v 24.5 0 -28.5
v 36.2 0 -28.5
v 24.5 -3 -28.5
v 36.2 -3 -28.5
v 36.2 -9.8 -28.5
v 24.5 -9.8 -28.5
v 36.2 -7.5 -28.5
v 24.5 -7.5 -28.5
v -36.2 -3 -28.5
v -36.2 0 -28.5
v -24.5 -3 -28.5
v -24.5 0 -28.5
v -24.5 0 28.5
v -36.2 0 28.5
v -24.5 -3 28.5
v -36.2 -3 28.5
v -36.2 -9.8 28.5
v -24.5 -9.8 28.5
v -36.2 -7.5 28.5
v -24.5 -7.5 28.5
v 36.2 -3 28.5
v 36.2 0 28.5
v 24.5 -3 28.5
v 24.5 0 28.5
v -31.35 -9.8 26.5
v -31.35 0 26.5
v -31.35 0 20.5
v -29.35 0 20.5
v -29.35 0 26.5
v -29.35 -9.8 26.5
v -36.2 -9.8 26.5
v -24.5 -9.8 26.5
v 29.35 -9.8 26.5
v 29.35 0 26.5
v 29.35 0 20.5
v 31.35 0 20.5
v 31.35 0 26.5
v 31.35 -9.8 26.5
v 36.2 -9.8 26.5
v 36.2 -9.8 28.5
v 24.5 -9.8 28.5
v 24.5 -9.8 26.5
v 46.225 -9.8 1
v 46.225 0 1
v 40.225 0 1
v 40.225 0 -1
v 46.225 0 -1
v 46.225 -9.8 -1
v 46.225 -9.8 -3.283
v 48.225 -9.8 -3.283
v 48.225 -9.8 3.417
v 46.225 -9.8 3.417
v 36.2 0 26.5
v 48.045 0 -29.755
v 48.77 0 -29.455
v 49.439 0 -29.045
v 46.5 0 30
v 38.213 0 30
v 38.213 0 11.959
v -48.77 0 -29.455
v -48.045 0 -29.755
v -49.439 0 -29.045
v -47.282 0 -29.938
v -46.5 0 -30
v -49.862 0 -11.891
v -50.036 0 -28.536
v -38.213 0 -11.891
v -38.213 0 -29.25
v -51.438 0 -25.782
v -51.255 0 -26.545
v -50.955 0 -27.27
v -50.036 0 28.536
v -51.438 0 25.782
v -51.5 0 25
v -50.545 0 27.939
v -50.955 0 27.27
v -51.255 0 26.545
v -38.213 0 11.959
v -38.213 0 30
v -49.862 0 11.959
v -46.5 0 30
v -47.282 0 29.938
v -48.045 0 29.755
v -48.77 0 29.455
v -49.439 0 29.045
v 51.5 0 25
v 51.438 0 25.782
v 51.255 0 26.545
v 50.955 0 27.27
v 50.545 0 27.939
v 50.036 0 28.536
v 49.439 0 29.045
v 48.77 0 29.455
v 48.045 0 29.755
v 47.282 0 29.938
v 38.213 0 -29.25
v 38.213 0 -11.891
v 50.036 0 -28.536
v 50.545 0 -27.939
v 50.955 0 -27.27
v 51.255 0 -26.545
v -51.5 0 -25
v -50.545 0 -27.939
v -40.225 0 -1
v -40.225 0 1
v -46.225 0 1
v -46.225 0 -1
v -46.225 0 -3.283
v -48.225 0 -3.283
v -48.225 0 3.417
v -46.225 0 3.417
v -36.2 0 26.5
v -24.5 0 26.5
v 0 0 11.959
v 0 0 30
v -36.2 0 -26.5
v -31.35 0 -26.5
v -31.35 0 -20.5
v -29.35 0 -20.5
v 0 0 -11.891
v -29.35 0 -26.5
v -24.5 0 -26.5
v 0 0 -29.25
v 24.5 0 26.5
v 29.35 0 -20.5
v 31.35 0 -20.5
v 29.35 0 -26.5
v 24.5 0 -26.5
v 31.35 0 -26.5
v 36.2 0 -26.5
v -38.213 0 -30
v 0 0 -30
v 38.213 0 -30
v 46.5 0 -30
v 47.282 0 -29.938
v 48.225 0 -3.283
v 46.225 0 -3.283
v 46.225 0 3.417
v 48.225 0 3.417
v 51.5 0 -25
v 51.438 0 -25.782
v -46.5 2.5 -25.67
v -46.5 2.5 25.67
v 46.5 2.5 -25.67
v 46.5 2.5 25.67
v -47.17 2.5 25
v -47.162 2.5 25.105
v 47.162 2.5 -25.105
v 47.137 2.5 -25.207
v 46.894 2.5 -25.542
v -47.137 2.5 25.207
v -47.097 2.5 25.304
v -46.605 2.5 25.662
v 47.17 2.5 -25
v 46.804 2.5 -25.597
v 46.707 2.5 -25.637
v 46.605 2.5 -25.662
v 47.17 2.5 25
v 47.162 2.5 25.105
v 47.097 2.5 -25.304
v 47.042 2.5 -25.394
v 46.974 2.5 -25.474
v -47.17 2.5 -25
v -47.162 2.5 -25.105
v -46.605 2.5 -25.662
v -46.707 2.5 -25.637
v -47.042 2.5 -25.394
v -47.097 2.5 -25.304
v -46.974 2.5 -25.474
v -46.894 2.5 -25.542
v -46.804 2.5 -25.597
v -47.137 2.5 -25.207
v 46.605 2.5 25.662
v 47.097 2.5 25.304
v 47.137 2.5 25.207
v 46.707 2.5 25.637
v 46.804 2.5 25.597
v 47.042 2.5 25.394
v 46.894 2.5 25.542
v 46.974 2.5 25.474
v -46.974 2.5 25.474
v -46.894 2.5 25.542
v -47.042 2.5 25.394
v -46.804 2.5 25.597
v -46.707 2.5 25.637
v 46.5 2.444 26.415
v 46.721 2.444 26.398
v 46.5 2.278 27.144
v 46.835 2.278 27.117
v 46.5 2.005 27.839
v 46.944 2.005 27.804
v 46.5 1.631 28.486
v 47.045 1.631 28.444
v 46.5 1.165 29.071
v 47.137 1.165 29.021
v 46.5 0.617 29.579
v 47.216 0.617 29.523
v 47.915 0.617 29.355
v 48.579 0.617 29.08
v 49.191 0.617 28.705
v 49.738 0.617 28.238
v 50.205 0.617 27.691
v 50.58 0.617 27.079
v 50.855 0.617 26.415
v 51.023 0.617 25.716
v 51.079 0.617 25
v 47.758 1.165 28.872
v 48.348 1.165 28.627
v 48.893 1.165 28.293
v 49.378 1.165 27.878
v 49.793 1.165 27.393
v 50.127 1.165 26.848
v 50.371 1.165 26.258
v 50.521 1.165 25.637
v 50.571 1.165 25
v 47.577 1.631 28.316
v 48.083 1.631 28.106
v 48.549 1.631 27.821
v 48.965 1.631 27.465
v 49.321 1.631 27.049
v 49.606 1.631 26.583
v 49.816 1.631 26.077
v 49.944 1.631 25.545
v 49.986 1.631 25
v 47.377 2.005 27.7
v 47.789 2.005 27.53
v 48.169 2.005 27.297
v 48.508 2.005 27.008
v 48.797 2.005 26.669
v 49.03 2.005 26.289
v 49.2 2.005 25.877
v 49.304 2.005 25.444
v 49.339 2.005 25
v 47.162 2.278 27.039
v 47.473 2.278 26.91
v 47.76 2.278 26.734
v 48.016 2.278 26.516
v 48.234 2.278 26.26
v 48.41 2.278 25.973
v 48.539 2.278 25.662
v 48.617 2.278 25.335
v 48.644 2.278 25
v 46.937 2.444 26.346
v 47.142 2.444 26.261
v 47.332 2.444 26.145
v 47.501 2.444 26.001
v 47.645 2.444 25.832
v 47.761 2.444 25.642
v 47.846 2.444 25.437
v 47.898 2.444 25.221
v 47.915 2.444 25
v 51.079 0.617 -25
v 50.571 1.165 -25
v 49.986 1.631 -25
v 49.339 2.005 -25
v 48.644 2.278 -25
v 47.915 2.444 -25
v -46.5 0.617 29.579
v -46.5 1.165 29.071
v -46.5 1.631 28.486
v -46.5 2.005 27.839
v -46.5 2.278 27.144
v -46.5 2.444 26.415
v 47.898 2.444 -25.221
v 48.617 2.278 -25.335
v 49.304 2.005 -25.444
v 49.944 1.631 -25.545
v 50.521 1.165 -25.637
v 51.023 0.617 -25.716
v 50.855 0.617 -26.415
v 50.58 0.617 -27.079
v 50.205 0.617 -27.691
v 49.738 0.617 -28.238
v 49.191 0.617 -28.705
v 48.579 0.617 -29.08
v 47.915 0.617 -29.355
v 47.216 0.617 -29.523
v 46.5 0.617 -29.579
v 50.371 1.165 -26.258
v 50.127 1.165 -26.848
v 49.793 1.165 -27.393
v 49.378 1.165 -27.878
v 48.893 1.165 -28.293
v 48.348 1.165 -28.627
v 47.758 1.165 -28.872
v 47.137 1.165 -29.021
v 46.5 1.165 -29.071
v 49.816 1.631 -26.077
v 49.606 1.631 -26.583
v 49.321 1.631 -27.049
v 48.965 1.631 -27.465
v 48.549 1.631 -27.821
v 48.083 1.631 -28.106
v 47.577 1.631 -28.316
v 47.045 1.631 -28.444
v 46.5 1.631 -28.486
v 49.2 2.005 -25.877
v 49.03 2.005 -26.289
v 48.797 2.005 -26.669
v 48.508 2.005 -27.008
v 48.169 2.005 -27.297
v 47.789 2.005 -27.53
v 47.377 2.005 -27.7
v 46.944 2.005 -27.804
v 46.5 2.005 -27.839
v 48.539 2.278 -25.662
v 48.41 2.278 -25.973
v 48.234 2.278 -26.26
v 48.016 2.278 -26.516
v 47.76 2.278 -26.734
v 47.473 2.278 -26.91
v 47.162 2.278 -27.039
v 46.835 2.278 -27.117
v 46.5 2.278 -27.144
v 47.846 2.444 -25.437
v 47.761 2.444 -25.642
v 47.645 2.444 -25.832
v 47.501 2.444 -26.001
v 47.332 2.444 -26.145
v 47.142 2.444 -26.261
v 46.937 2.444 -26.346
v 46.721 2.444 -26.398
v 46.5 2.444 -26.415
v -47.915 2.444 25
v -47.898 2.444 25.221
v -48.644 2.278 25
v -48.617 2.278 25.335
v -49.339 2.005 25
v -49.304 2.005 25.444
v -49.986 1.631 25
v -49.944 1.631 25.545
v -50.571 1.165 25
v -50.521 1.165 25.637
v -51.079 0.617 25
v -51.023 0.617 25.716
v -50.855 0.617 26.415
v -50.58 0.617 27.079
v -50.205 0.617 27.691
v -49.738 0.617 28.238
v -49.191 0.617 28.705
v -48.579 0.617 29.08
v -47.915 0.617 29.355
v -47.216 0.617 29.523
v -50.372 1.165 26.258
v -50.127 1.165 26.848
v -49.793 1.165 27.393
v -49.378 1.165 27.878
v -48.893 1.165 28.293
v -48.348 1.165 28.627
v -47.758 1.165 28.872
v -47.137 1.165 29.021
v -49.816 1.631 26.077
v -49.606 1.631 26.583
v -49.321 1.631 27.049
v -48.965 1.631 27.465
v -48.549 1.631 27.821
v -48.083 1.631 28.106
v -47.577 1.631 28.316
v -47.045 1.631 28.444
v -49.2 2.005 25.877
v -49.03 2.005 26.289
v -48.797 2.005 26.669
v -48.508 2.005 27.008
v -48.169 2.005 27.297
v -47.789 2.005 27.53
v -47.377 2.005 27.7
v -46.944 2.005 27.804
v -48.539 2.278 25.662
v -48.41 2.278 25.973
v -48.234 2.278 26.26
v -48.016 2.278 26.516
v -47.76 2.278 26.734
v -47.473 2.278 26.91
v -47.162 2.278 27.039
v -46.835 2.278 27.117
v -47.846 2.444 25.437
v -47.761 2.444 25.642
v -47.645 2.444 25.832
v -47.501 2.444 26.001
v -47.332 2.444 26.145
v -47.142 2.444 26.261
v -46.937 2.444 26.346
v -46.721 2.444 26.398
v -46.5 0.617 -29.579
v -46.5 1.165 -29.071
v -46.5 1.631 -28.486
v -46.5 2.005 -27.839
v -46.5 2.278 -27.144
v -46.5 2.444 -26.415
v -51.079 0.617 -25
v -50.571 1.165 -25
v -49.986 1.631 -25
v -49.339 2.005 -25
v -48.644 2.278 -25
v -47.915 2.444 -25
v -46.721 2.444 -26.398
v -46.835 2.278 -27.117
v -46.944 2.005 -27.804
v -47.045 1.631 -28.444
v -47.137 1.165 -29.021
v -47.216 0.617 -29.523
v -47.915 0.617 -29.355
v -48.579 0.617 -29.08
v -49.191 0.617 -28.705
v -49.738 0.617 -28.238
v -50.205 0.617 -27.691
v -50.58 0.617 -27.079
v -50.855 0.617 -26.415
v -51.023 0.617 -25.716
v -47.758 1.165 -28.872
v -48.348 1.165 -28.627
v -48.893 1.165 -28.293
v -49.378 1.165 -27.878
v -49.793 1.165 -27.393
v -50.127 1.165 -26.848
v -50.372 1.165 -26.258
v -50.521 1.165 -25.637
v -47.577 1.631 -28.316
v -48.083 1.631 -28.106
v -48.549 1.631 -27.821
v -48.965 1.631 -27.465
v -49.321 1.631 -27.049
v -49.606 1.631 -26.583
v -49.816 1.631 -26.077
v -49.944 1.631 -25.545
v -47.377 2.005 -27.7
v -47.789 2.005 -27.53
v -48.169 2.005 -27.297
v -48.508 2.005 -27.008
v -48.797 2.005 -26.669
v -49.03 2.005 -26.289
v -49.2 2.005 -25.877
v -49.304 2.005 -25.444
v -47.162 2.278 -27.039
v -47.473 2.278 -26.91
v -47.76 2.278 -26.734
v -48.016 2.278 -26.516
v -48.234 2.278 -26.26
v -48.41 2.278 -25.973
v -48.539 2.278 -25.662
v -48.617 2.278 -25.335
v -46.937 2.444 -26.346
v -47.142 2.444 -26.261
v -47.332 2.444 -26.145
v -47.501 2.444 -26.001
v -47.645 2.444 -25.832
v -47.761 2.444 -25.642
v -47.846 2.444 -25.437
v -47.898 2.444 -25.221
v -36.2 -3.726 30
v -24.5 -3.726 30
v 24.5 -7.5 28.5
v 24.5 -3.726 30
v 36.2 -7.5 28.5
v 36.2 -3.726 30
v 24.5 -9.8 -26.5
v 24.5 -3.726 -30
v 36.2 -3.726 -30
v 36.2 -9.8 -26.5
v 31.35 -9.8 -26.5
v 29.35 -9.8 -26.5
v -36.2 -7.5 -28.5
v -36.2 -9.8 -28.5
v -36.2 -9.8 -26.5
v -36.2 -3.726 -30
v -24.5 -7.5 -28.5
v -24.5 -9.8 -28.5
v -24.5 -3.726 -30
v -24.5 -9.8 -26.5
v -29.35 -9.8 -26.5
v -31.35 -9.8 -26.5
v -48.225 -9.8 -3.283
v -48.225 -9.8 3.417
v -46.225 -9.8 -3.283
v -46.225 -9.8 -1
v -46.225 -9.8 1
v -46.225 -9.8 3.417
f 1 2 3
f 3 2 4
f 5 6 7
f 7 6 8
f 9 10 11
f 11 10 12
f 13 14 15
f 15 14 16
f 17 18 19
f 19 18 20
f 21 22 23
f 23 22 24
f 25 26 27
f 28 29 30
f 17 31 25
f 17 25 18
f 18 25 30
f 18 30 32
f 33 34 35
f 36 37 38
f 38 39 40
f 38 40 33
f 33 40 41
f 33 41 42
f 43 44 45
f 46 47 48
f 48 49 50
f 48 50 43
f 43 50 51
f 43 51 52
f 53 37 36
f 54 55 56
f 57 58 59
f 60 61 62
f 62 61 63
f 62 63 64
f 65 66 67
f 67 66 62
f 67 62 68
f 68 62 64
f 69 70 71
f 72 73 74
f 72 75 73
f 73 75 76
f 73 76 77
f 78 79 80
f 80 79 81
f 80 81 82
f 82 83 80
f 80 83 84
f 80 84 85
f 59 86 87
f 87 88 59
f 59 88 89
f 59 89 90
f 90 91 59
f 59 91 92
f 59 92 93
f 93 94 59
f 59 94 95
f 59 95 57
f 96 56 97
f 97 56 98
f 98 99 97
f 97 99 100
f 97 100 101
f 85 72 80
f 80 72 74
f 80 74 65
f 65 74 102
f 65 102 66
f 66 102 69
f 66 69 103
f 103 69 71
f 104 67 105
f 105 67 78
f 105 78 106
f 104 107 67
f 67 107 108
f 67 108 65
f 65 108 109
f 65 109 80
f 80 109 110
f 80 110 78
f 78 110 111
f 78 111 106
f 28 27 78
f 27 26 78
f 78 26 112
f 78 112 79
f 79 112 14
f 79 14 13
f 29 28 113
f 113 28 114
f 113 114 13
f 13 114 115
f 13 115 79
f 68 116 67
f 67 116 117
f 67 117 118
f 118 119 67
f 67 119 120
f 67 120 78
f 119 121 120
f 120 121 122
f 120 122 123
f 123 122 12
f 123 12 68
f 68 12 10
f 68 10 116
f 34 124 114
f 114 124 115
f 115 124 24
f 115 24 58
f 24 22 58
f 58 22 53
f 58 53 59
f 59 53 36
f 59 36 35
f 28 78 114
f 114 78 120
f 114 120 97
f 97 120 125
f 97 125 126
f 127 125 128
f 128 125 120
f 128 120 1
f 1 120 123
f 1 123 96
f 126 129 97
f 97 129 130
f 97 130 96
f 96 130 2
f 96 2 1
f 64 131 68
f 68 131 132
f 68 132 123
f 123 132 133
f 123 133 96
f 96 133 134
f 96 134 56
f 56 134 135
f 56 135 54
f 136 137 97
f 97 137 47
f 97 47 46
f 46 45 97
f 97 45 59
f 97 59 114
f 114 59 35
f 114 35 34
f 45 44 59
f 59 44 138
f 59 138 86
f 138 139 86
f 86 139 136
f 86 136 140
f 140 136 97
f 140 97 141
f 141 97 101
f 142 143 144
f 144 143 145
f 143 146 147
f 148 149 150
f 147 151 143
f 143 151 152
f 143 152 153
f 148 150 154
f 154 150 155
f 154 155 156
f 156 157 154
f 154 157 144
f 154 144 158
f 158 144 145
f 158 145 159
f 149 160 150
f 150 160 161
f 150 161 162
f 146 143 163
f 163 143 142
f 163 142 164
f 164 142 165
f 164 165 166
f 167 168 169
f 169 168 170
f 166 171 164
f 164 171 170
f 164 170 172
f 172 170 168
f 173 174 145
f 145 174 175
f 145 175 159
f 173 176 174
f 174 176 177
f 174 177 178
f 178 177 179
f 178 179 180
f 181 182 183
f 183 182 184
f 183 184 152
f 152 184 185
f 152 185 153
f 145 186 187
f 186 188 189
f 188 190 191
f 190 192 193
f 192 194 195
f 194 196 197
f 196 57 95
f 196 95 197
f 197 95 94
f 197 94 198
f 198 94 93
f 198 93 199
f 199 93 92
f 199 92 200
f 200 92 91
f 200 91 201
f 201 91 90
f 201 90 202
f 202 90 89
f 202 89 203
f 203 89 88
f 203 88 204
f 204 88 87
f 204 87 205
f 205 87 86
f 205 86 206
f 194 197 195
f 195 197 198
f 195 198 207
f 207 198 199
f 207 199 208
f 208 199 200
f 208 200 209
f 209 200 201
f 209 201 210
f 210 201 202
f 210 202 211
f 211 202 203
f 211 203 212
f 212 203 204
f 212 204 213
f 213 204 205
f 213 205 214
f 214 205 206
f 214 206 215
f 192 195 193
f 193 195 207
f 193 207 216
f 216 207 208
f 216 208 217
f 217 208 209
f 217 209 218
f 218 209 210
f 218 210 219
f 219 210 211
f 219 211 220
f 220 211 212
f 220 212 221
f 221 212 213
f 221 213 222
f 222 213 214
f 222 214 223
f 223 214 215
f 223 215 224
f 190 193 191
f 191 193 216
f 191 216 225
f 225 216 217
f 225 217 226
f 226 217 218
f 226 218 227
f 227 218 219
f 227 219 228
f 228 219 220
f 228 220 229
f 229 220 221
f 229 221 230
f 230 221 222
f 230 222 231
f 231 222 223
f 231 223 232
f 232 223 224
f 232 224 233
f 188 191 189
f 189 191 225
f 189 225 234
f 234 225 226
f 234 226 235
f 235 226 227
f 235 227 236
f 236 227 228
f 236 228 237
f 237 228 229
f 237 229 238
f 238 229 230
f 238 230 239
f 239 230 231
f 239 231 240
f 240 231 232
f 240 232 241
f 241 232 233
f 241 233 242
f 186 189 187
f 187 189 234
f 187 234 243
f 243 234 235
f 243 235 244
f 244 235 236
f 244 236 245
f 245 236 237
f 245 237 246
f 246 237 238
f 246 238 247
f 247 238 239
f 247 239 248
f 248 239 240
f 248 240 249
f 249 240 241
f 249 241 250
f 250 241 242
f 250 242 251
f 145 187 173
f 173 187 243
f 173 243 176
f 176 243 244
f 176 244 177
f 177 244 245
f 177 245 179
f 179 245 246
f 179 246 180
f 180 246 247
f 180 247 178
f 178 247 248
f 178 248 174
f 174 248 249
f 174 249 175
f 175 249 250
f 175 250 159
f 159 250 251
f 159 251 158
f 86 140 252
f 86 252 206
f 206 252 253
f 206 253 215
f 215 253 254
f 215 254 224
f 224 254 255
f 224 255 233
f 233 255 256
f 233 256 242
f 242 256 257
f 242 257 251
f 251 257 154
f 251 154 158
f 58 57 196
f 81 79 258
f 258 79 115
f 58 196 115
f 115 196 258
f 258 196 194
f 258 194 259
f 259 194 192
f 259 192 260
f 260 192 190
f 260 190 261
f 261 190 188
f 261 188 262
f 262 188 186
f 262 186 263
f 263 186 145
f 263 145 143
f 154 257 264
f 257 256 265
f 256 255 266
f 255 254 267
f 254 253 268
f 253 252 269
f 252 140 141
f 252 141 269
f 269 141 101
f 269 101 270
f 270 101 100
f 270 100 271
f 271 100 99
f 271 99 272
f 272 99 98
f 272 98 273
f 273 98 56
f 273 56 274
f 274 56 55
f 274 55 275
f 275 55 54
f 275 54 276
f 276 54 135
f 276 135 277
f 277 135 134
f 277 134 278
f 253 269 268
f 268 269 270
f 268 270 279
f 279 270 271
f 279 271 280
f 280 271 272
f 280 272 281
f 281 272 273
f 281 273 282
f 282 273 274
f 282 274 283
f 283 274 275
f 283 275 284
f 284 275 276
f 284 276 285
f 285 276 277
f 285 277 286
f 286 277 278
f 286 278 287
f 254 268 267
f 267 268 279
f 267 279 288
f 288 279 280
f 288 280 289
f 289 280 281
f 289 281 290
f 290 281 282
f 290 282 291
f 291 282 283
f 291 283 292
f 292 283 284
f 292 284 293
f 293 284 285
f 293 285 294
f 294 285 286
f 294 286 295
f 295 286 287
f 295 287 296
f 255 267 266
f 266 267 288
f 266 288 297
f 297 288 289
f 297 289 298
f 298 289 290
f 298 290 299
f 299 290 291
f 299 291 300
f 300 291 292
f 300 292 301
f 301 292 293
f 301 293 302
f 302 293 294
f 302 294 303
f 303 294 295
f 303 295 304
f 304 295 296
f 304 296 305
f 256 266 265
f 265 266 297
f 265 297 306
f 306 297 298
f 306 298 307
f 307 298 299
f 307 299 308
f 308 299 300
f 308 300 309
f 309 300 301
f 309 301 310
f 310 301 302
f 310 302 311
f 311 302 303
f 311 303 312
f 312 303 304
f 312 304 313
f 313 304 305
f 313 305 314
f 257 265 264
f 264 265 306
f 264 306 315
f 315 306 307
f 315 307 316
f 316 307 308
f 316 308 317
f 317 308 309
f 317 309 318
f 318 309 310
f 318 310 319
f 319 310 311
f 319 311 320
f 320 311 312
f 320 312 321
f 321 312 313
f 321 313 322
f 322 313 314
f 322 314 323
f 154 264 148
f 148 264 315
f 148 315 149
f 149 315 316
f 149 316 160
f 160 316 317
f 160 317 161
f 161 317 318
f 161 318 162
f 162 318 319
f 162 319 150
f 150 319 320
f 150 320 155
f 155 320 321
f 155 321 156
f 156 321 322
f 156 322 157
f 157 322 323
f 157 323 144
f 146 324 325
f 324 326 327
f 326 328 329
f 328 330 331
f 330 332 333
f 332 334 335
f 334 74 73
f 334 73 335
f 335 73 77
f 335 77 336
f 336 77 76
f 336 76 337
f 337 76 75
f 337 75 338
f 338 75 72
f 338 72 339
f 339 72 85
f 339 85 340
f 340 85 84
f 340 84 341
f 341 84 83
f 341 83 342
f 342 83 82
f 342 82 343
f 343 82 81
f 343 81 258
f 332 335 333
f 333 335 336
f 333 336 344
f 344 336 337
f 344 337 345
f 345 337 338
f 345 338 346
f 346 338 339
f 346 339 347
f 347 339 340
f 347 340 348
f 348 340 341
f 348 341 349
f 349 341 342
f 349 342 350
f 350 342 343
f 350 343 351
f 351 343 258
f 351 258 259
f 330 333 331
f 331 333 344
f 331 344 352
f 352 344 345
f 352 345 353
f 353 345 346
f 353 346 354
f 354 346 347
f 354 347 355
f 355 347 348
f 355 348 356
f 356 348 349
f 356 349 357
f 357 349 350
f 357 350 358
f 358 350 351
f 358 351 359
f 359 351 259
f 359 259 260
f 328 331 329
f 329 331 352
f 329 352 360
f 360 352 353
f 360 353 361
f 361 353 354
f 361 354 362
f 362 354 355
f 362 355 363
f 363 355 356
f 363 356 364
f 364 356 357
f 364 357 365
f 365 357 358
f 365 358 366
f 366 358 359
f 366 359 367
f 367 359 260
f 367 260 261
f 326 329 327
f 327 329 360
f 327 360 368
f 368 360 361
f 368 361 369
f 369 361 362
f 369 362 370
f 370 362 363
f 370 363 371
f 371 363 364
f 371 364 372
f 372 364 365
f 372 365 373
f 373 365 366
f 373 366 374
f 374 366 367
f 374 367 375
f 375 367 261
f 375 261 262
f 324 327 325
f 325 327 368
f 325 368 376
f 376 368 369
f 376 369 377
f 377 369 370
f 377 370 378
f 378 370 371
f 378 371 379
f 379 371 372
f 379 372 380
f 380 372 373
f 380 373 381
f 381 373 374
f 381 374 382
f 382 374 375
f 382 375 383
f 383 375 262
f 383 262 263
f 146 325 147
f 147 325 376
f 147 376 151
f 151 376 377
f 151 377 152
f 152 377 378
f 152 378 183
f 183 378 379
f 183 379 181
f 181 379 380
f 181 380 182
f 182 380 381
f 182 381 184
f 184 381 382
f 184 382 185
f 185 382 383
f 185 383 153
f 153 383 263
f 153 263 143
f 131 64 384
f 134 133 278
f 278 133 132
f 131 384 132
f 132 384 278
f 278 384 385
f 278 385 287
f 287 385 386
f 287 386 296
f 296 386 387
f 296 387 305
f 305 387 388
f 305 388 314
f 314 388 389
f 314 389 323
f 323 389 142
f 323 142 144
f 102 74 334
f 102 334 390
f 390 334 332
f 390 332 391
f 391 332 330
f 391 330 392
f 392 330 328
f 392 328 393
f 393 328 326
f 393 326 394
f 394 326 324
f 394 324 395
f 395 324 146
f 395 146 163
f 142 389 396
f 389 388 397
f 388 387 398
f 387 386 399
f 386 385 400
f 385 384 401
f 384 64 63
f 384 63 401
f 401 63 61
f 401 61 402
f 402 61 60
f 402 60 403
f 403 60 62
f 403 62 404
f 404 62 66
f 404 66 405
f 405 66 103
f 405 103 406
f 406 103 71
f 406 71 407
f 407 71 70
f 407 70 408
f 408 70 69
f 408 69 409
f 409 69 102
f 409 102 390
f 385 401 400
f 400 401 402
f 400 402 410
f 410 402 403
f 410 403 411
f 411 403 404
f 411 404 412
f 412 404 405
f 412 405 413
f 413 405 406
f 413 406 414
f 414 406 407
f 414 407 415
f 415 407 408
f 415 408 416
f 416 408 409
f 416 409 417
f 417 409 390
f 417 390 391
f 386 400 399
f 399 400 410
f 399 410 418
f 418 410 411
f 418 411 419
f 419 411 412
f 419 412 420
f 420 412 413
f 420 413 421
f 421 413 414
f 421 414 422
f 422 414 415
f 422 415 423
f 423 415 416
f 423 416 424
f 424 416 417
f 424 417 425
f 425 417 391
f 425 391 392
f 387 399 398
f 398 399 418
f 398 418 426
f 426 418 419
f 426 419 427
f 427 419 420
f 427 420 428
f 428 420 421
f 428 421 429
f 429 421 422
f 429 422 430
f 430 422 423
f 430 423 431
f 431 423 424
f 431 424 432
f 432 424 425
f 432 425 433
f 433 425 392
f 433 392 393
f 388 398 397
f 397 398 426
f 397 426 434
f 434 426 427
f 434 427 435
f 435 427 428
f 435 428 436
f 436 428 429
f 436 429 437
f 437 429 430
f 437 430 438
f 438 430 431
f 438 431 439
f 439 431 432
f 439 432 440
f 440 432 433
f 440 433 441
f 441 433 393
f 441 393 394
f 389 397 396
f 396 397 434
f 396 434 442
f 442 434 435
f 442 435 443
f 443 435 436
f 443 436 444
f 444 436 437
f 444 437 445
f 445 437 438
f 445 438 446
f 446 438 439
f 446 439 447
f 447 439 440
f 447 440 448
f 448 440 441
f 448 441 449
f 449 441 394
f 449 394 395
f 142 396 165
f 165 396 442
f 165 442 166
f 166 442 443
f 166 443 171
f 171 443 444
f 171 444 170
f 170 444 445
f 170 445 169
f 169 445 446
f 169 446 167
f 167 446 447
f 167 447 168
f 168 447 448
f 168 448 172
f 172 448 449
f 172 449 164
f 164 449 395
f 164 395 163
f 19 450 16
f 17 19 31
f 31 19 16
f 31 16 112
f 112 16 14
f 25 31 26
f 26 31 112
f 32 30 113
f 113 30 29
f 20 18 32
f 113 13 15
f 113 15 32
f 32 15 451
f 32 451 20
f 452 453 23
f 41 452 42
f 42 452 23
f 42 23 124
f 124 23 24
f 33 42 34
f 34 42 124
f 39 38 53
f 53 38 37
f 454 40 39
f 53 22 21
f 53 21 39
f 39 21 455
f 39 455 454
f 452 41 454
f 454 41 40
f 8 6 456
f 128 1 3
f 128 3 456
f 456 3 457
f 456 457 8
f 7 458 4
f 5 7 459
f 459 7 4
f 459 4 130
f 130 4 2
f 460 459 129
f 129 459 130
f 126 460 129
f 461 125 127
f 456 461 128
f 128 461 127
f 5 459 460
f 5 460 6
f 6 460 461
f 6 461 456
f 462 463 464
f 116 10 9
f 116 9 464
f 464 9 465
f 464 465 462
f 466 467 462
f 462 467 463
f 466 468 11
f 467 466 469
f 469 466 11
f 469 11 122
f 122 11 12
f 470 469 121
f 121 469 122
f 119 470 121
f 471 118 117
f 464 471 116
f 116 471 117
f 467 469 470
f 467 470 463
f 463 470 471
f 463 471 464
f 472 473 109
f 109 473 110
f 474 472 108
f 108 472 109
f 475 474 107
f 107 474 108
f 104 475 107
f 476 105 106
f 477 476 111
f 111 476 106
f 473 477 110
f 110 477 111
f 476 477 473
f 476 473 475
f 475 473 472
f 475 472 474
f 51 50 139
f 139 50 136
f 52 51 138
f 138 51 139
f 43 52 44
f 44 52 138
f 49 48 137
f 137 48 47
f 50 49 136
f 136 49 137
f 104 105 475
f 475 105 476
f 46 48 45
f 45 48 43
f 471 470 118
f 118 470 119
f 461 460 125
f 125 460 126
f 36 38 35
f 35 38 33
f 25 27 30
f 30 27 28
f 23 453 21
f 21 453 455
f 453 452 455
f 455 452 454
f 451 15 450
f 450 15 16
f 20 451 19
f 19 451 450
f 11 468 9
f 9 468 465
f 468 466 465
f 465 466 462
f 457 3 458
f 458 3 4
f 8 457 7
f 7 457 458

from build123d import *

# Parameters (mm, degrees)
BOSS_EXTRUDE1_DEPTH  = 2.5
FILLET1_R            = 5
BOSS_EXTRUDE2_DEPTH  = 9.8
CUT_EXTRUDE1_DEPTH   = 9.8
CUT_EXTRUDE2_DEPTH   = 89.657557489
BOSS_EXTRUDE3_DEPTH  = 11.7
MIRROR4_COPY_1_DEPTH = 11.7


with BuildPart() as part:
    # Sketch1 → Boss-Extrude1 (new body)
    with BuildSketch(Plane(origin=(0, 0, 0), x_dir=(1, 0, 0), z_dir=(0, 1, 0))):
        with BuildLine():
            Line((-46.5, 30), (46.5, 30))
            ThreePointArc((46.5, 30), (50.035533906, 28.535533906), (51.5, 25))
            Line((51.5, 25), (51.5, -25))
            ThreePointArc((51.5, -25), (50.035533906, -28.535533906), (46.5, -30))
            Line((46.5, -30), (-46.5, -30))
            ThreePointArc((-46.5, -30), (-50.035533906, -28.535533906), (-51.5, -25))
            Line((-51.5, -25), (-51.5, 25))
            ThreePointArc((-51.5, 25), (-50.035533906, 28.535533906), (-46.5, 30))
        make_face()
    extrude(amount=BOSS_EXTRUDE1_DEPTH)

    # Fillet1
    # the kernel refuses this fillet: 5 mm, written as the material it takes off along each edge
    with BuildSketch(Plane(origin=(-46.5, 2.5, -25), x_dir=(-1, 0, 0), z_dir=(0, 0, 1))) as fillet1_piece_1:
        with BuildLine():
            CenterArc((0.669872981, 5), FILLET1_R, 270, 60)
            Line((0.669872981, 0), (0.669872981, -0.1))
            Line((0.669872981, -0.1), (5, -0.1))
            Line((5, -0.1), (5.1, 0))
            ThreePointArc((5.1, 0), (5.1, 1.25), (5.08660254, 2.45))
            Line((5.08660254, 2.45), (5, 2.5))
        make_face()
    revolve(axis=Axis((-46.5, 2.5, -25), (0, -1, 0)), revolution_arc=90, mode=Mode.SUBTRACT)
    with BuildSketch(Plane(origin=(-46.5, 2.5, -30), x_dir=(0, -1, 0), z_dir=(1, 0, 0)), Plane(origin=(46.5, 2.5, 30), x_dir=(0, -1, 0), z_dir=(-1, 0, 0))) as fillet1_piece_2:
        with BuildLine():
            CenterArc((5, -4.330127019), FILLET1_R, 120, 60)
            Line((0, -4.330127019), (-0.1, -4.330127019))
            Line((-0.1, -4.330127019), (-0.1, 0))
            Line((-0.1, 0), (0, 0.1))
            ThreePointArc((0, 0.1), (1.25, 0.1), (2.45, 0.08660254))
            Line((2.45, 0.08660254), (2.5, 0))
        make_face()
    extrude(amount=93, mode=Mode.SUBTRACT)
    with BuildSketch(Plane(origin=(46.5, 2.5, -25), x_dir=(0, 0, -1), z_dir=(-1, 0, 0))) as fillet1_piece_3:
        with BuildLine():
            CenterArc((0.669872981, 5), FILLET1_R, 270, 60)
            Line((0.669872981, 0), (0.669872981, -0.1))
            Line((0.669872981, -0.1), (5, -0.1))
            Line((5, -0.1), (5.1, 0))
            ThreePointArc((5.1, 0), (5.1, 1.25), (5.08660254, 2.45))
            Line((5.08660254, 2.45), (5, 2.5))
        make_face()
    revolve(axis=Axis((46.5, 2.5, -25), (0, -1, 0)), revolution_arc=90, mode=Mode.SUBTRACT)
    with BuildSketch(Plane(origin=(51.5, 2.5, -25), x_dir=(0, -1, 0), z_dir=(0, 0, 1)), Plane(origin=(-51.5, 2.5, 25), x_dir=(0, -1, 0), z_dir=(0, 0, -1))) as fillet1_piece_4:
        with BuildLine():
            CenterArc((5, -4.330127019), FILLET1_R, 120, 60)
            Line((0, -4.330127019), (-0.1, -4.330127019))
            Line((-0.1, -4.330127019), (-0.1, 0))
            Line((-0.1, 0), (0, 0.1))
            ThreePointArc((0, 0.1), (1.25, 0.1), (2.45, 0.08660254))
            Line((2.45, 0.08660254), (2.5, 0))
        make_face()
    extrude(amount=50, mode=Mode.SUBTRACT)
    with BuildSketch(Plane(origin=(46.5, 2.5, 25), x_dir=(1, 0, 0), z_dir=(0, 0, -1))) as fillet1_piece_5:
        with BuildLine():
            CenterArc((0.669872981, 5), FILLET1_R, 270, 60)
            Line((0.669872981, 0), (0.669872981, -0.1))
            Line((0.669872981, -0.1), (5, -0.1))
            Line((5, -0.1), (5.1, 0))
            ThreePointArc((5.1, 0), (5.1, 1.25), (5.08660254, 2.45))
            Line((5.08660254, 2.45), (5, 2.5))
        make_face()
    revolve(axis=Axis((46.5, 2.5, 25), (0, -1, 0)), revolution_arc=90, mode=Mode.SUBTRACT)
    with BuildSketch(Plane(origin=(-46.5, 2.5, 25), x_dir=(0, 0, 1), z_dir=(1, 0, 0))) as fillet1_piece_6:
        with BuildLine():
            CenterArc((0.669872981, 5), FILLET1_R, 270, 60)
            Line((0.669872981, 0), (0.669872981, -0.1))
            Line((0.669872981, -0.1), (5, -0.1))
            Line((5, -0.1), (5.1, 0))
            ThreePointArc((5.1, 0), (5.1, 1.25), (5.08660254, 2.45))
            Line((5.08660254, 2.45), (5, 2.5))
        make_face()
    revolve(axis=Axis((-46.5, 2.5, 25), (0, -1, 0)), revolution_arc=90, mode=Mode.SUBTRACT)

    # Sketch2 → Boss-Extrude2 (add)
    with BuildSketch(Plane.XZ):
        Polygon((-36.2, 28.5), (-24.5, 28.5), (-24.5, 26.5), (-29.35, 26.5), (-29.35, 20.5), (-31.35, 20.5), (-31.35, 26.5), (-36.2, 26.5), align=None)
        Polygon((48.225, -3.282847821), (46.225, -3.282847821), (46.225, -0.999790058), (40.225, -0.999790058), (40.225, 1), (46.225, 1), (46.225, 3.417152179), (48.225, 3.417152179), align=None)
        Polygon((24.5, 28.5), (36.2, 28.5), (36.2, 26.5), (31.35, 26.5), (31.35, 20.5), (29.35, 20.5), (29.35, 26.5), (24.5, 26.5), align=None)
        Polygon((24.5, -26.5), (29.35, -26.5), (29.35, -20.5), (31.35, -20.5), (31.35, -26.5), (36.2, -26.5), (36.2, -28.5), (24.5, -28.5), align=None)
        Polygon((-36.2, -28.5), (-24.5, -28.5), (-24.5, -26.5), (-29.35, -26.5), (-29.35, -20.5), (-31.35, -20.5), (-31.35, -26.5), (-36.2, -26.5), align=None)
        Polygon((-48.225, 3.417152179), (-46.225, 3.417152179), (-46.225, 1), (-40.225, 1), (-40.225, -0.999790058), (-46.225, -0.999790058), (-46.225, -3.282847821), (-48.225, -3.282847821), align=None)
    extrude(amount=BOSS_EXTRUDE2_DEPTH)

    # Sketch4 → Cut-Extrude1 (cut)
    with BuildSketch(Plane(origin=(0, 0, -0.999790058), x_dir=(-1, 0, 0), z_dir=(0, 0, -1))):
        Polygon((40.225, 0), (46.225, -9.8), (40.225, -9.8), align=None)
    cut_extrude1 = extrude(amount=-CUT_EXTRUDE1_DEPTH, mode=Mode.SUBTRACT)

    # Mirror1: Cut-Extrude1 across plane
    add(cut_extrude1.mirror(Plane(origin=(0, 0, 0), x_dir=(0, 0, 1), z_dir=(1, 0, 0))), mode=Mode.SUBTRACT)

    # Sketch5 → Cut-Extrude2 (cut, through all)
    with BuildSketch(Plane.ZY.offset(31.35)):
        Polygon((-26.5, -9.8), (-20.5, 0), (-20.5, -9.8), align=None)
    cut_extrude2 = extrude(amount=-CUT_EXTRUDE2_DEPTH, mode=Mode.SUBTRACT)

    # Mirror2: Cut-Extrude2 across plane
    add(cut_extrude2.mirror(Plane.XY), mode=Mode.SUBTRACT)

    # Sketch6 → Boss-Extrude3 (add)
    with BuildSketch(Plane(origin=(36.2, 0, 0), x_dir=(0, 0, -1), z_dir=(1, 0, 0))):
        Polygon((-28.5, -3), (-28.5, -7.5), (-30, -3.726144837), align=None)
    boss_extrude3 = extrude(amount=-BOSS_EXTRUDE3_DEPTH)

    # Mirror3: Boss-Extrude3 across plane
    add(boss_extrude3.mirror(Plane(origin=(0, 0, 0), x_dir=(0, 0, 1), z_dir=(1, 0, 0))))

    # Mirror4: Boss-Extrude3 across plane
    add(boss_extrude3.mirror(Plane.XY))

    # Mirror4 copy 1 sketch → Mirror4 copy 1 (add)
    with BuildSketch(Plane.ZY.offset(36.2)):
        Polygon((-28.5, -3), (-28.5, -7.5), (-30, -3.726144837), align=None)
    extrude(amount=-MIRROR4_COPY_1_DEPTH)


solid = part.part
